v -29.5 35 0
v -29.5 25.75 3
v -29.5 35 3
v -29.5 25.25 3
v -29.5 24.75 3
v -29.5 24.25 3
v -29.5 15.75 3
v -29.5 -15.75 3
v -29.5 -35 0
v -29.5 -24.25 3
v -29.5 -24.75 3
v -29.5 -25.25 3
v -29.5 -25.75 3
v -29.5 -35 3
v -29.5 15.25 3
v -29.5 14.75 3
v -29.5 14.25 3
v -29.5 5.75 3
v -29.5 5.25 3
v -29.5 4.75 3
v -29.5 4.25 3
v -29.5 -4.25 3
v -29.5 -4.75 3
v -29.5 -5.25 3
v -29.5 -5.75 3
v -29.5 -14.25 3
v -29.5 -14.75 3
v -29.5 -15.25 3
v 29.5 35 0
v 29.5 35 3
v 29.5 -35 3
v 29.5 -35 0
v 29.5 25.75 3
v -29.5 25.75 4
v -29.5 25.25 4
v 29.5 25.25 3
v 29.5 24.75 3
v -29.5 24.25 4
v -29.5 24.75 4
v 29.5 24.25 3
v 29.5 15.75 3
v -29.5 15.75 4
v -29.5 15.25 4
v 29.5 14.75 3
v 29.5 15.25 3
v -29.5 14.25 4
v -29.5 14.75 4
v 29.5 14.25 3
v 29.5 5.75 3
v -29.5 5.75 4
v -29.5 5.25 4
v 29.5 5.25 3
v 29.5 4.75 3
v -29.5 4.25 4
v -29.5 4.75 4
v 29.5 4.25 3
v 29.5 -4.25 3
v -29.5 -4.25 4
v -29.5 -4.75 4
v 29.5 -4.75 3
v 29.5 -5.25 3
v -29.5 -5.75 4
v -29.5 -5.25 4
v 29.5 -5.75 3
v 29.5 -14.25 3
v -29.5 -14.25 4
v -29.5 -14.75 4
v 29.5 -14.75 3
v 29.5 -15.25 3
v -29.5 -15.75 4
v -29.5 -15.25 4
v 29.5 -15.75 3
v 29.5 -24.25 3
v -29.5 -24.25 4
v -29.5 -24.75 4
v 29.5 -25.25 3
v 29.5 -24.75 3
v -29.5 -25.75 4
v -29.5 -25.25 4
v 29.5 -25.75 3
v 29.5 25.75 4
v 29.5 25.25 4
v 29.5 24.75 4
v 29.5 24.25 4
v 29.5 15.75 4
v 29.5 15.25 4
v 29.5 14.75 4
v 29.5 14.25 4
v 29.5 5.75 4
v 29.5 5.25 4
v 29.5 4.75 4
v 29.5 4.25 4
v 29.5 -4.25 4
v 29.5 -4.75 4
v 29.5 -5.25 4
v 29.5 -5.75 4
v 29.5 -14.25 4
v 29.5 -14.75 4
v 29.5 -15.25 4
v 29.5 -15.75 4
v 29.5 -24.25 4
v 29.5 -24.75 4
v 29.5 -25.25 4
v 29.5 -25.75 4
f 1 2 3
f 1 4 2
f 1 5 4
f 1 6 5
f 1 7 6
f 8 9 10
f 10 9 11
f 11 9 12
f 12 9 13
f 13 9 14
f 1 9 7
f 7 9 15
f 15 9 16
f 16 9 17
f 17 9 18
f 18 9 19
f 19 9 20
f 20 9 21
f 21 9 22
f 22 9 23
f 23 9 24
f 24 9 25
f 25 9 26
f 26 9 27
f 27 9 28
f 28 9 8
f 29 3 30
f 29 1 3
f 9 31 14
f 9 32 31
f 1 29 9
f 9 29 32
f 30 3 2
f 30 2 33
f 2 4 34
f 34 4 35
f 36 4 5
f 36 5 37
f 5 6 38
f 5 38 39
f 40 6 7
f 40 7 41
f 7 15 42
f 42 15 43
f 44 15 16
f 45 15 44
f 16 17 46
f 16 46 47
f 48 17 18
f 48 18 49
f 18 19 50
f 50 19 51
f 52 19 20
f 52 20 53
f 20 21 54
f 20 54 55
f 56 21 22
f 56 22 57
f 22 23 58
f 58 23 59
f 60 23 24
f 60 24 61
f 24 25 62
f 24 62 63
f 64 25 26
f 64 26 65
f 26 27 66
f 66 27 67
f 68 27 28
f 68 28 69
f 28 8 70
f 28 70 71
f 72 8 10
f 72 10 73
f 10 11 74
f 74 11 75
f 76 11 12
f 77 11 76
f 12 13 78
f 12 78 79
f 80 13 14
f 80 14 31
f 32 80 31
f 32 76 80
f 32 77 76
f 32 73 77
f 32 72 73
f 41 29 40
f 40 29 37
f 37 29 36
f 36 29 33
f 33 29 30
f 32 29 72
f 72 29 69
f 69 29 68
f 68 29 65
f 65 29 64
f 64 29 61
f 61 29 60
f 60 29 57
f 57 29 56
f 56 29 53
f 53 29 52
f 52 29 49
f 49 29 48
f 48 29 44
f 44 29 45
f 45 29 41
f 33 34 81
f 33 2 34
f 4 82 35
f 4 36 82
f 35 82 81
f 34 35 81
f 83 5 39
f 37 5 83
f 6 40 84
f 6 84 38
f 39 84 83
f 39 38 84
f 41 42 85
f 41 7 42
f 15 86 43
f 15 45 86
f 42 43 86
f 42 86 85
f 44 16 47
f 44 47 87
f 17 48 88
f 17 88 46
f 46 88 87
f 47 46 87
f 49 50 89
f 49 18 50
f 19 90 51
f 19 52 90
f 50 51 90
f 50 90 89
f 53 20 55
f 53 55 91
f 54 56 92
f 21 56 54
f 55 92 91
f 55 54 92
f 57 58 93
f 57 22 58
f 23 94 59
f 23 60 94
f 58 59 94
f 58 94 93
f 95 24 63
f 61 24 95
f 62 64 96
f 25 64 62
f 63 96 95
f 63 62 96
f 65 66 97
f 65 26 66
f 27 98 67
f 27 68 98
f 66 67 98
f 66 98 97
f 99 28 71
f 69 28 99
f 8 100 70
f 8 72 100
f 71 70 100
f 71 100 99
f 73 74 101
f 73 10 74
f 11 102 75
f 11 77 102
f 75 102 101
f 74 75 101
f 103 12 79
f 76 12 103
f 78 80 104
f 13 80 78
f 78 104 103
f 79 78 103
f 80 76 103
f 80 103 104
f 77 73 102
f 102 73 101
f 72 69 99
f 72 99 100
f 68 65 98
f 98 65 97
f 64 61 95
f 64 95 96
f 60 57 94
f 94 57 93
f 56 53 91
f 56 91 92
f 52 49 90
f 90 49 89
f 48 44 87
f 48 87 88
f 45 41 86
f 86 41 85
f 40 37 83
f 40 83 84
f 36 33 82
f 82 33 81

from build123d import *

# Parameters (mm, degrees)
SKETCH_W     = 59
SKETCH_H     = 70
PAD_DEPTH    = 3
SKETCH001_W  = 59
SKETCH001_H  = 0.5
PAD001_DEPTH = 1


with BuildPart() as part:
    # Sketch → Pad (new body)
    with BuildSketch(Plane.XY):
        Rectangle(SKETCH_W, SKETCH_H)
    extrude(amount=PAD_DEPTH)

    # Sketch001 (on Face6 of Pad) → Pad001 (join)
    with BuildSketch(Plane.XY.offset(3)):
        with Locations((0, -25.5)):
            Rectangle(SKETCH001_W, SKETCH001_H)
        with Locations((0, -24.5)):
            Rectangle(SKETCH001_W, SKETCH001_H)
        with Locations((0, -15.5)):
            Rectangle(SKETCH001_W, SKETCH001_H)
        with Locations((0, -14.5)):
            Rectangle(SKETCH001_W, SKETCH001_H)
        with Locations((0, -5.5)):
            Rectangle(SKETCH001_W, SKETCH001_H)
        with Locations((0, -4.5)):
            Rectangle(SKETCH001_W, SKETCH001_H)
        with Locations((0, 4.5)):
            Rectangle(SKETCH001_W, SKETCH001_H)
        with Locations((0, 5.5)):
            Rectangle(SKETCH001_W, SKETCH001_H)
        with Locations((0, 14.5)):
            Rectangle(SKETCH001_W, SKETCH001_H)
        with Locations((0, 15.5)):
            Rectangle(SKETCH001_W, SKETCH001_H)
        with Locations((0, 24.5)):
            Rectangle(SKETCH001_W, SKETCH001_H)
        with Locations((0, 25.5)):
            Rectangle(SKETCH001_W, SKETCH001_H)
    extrude(amount=PAD001_DEPTH)


solid = part.part
